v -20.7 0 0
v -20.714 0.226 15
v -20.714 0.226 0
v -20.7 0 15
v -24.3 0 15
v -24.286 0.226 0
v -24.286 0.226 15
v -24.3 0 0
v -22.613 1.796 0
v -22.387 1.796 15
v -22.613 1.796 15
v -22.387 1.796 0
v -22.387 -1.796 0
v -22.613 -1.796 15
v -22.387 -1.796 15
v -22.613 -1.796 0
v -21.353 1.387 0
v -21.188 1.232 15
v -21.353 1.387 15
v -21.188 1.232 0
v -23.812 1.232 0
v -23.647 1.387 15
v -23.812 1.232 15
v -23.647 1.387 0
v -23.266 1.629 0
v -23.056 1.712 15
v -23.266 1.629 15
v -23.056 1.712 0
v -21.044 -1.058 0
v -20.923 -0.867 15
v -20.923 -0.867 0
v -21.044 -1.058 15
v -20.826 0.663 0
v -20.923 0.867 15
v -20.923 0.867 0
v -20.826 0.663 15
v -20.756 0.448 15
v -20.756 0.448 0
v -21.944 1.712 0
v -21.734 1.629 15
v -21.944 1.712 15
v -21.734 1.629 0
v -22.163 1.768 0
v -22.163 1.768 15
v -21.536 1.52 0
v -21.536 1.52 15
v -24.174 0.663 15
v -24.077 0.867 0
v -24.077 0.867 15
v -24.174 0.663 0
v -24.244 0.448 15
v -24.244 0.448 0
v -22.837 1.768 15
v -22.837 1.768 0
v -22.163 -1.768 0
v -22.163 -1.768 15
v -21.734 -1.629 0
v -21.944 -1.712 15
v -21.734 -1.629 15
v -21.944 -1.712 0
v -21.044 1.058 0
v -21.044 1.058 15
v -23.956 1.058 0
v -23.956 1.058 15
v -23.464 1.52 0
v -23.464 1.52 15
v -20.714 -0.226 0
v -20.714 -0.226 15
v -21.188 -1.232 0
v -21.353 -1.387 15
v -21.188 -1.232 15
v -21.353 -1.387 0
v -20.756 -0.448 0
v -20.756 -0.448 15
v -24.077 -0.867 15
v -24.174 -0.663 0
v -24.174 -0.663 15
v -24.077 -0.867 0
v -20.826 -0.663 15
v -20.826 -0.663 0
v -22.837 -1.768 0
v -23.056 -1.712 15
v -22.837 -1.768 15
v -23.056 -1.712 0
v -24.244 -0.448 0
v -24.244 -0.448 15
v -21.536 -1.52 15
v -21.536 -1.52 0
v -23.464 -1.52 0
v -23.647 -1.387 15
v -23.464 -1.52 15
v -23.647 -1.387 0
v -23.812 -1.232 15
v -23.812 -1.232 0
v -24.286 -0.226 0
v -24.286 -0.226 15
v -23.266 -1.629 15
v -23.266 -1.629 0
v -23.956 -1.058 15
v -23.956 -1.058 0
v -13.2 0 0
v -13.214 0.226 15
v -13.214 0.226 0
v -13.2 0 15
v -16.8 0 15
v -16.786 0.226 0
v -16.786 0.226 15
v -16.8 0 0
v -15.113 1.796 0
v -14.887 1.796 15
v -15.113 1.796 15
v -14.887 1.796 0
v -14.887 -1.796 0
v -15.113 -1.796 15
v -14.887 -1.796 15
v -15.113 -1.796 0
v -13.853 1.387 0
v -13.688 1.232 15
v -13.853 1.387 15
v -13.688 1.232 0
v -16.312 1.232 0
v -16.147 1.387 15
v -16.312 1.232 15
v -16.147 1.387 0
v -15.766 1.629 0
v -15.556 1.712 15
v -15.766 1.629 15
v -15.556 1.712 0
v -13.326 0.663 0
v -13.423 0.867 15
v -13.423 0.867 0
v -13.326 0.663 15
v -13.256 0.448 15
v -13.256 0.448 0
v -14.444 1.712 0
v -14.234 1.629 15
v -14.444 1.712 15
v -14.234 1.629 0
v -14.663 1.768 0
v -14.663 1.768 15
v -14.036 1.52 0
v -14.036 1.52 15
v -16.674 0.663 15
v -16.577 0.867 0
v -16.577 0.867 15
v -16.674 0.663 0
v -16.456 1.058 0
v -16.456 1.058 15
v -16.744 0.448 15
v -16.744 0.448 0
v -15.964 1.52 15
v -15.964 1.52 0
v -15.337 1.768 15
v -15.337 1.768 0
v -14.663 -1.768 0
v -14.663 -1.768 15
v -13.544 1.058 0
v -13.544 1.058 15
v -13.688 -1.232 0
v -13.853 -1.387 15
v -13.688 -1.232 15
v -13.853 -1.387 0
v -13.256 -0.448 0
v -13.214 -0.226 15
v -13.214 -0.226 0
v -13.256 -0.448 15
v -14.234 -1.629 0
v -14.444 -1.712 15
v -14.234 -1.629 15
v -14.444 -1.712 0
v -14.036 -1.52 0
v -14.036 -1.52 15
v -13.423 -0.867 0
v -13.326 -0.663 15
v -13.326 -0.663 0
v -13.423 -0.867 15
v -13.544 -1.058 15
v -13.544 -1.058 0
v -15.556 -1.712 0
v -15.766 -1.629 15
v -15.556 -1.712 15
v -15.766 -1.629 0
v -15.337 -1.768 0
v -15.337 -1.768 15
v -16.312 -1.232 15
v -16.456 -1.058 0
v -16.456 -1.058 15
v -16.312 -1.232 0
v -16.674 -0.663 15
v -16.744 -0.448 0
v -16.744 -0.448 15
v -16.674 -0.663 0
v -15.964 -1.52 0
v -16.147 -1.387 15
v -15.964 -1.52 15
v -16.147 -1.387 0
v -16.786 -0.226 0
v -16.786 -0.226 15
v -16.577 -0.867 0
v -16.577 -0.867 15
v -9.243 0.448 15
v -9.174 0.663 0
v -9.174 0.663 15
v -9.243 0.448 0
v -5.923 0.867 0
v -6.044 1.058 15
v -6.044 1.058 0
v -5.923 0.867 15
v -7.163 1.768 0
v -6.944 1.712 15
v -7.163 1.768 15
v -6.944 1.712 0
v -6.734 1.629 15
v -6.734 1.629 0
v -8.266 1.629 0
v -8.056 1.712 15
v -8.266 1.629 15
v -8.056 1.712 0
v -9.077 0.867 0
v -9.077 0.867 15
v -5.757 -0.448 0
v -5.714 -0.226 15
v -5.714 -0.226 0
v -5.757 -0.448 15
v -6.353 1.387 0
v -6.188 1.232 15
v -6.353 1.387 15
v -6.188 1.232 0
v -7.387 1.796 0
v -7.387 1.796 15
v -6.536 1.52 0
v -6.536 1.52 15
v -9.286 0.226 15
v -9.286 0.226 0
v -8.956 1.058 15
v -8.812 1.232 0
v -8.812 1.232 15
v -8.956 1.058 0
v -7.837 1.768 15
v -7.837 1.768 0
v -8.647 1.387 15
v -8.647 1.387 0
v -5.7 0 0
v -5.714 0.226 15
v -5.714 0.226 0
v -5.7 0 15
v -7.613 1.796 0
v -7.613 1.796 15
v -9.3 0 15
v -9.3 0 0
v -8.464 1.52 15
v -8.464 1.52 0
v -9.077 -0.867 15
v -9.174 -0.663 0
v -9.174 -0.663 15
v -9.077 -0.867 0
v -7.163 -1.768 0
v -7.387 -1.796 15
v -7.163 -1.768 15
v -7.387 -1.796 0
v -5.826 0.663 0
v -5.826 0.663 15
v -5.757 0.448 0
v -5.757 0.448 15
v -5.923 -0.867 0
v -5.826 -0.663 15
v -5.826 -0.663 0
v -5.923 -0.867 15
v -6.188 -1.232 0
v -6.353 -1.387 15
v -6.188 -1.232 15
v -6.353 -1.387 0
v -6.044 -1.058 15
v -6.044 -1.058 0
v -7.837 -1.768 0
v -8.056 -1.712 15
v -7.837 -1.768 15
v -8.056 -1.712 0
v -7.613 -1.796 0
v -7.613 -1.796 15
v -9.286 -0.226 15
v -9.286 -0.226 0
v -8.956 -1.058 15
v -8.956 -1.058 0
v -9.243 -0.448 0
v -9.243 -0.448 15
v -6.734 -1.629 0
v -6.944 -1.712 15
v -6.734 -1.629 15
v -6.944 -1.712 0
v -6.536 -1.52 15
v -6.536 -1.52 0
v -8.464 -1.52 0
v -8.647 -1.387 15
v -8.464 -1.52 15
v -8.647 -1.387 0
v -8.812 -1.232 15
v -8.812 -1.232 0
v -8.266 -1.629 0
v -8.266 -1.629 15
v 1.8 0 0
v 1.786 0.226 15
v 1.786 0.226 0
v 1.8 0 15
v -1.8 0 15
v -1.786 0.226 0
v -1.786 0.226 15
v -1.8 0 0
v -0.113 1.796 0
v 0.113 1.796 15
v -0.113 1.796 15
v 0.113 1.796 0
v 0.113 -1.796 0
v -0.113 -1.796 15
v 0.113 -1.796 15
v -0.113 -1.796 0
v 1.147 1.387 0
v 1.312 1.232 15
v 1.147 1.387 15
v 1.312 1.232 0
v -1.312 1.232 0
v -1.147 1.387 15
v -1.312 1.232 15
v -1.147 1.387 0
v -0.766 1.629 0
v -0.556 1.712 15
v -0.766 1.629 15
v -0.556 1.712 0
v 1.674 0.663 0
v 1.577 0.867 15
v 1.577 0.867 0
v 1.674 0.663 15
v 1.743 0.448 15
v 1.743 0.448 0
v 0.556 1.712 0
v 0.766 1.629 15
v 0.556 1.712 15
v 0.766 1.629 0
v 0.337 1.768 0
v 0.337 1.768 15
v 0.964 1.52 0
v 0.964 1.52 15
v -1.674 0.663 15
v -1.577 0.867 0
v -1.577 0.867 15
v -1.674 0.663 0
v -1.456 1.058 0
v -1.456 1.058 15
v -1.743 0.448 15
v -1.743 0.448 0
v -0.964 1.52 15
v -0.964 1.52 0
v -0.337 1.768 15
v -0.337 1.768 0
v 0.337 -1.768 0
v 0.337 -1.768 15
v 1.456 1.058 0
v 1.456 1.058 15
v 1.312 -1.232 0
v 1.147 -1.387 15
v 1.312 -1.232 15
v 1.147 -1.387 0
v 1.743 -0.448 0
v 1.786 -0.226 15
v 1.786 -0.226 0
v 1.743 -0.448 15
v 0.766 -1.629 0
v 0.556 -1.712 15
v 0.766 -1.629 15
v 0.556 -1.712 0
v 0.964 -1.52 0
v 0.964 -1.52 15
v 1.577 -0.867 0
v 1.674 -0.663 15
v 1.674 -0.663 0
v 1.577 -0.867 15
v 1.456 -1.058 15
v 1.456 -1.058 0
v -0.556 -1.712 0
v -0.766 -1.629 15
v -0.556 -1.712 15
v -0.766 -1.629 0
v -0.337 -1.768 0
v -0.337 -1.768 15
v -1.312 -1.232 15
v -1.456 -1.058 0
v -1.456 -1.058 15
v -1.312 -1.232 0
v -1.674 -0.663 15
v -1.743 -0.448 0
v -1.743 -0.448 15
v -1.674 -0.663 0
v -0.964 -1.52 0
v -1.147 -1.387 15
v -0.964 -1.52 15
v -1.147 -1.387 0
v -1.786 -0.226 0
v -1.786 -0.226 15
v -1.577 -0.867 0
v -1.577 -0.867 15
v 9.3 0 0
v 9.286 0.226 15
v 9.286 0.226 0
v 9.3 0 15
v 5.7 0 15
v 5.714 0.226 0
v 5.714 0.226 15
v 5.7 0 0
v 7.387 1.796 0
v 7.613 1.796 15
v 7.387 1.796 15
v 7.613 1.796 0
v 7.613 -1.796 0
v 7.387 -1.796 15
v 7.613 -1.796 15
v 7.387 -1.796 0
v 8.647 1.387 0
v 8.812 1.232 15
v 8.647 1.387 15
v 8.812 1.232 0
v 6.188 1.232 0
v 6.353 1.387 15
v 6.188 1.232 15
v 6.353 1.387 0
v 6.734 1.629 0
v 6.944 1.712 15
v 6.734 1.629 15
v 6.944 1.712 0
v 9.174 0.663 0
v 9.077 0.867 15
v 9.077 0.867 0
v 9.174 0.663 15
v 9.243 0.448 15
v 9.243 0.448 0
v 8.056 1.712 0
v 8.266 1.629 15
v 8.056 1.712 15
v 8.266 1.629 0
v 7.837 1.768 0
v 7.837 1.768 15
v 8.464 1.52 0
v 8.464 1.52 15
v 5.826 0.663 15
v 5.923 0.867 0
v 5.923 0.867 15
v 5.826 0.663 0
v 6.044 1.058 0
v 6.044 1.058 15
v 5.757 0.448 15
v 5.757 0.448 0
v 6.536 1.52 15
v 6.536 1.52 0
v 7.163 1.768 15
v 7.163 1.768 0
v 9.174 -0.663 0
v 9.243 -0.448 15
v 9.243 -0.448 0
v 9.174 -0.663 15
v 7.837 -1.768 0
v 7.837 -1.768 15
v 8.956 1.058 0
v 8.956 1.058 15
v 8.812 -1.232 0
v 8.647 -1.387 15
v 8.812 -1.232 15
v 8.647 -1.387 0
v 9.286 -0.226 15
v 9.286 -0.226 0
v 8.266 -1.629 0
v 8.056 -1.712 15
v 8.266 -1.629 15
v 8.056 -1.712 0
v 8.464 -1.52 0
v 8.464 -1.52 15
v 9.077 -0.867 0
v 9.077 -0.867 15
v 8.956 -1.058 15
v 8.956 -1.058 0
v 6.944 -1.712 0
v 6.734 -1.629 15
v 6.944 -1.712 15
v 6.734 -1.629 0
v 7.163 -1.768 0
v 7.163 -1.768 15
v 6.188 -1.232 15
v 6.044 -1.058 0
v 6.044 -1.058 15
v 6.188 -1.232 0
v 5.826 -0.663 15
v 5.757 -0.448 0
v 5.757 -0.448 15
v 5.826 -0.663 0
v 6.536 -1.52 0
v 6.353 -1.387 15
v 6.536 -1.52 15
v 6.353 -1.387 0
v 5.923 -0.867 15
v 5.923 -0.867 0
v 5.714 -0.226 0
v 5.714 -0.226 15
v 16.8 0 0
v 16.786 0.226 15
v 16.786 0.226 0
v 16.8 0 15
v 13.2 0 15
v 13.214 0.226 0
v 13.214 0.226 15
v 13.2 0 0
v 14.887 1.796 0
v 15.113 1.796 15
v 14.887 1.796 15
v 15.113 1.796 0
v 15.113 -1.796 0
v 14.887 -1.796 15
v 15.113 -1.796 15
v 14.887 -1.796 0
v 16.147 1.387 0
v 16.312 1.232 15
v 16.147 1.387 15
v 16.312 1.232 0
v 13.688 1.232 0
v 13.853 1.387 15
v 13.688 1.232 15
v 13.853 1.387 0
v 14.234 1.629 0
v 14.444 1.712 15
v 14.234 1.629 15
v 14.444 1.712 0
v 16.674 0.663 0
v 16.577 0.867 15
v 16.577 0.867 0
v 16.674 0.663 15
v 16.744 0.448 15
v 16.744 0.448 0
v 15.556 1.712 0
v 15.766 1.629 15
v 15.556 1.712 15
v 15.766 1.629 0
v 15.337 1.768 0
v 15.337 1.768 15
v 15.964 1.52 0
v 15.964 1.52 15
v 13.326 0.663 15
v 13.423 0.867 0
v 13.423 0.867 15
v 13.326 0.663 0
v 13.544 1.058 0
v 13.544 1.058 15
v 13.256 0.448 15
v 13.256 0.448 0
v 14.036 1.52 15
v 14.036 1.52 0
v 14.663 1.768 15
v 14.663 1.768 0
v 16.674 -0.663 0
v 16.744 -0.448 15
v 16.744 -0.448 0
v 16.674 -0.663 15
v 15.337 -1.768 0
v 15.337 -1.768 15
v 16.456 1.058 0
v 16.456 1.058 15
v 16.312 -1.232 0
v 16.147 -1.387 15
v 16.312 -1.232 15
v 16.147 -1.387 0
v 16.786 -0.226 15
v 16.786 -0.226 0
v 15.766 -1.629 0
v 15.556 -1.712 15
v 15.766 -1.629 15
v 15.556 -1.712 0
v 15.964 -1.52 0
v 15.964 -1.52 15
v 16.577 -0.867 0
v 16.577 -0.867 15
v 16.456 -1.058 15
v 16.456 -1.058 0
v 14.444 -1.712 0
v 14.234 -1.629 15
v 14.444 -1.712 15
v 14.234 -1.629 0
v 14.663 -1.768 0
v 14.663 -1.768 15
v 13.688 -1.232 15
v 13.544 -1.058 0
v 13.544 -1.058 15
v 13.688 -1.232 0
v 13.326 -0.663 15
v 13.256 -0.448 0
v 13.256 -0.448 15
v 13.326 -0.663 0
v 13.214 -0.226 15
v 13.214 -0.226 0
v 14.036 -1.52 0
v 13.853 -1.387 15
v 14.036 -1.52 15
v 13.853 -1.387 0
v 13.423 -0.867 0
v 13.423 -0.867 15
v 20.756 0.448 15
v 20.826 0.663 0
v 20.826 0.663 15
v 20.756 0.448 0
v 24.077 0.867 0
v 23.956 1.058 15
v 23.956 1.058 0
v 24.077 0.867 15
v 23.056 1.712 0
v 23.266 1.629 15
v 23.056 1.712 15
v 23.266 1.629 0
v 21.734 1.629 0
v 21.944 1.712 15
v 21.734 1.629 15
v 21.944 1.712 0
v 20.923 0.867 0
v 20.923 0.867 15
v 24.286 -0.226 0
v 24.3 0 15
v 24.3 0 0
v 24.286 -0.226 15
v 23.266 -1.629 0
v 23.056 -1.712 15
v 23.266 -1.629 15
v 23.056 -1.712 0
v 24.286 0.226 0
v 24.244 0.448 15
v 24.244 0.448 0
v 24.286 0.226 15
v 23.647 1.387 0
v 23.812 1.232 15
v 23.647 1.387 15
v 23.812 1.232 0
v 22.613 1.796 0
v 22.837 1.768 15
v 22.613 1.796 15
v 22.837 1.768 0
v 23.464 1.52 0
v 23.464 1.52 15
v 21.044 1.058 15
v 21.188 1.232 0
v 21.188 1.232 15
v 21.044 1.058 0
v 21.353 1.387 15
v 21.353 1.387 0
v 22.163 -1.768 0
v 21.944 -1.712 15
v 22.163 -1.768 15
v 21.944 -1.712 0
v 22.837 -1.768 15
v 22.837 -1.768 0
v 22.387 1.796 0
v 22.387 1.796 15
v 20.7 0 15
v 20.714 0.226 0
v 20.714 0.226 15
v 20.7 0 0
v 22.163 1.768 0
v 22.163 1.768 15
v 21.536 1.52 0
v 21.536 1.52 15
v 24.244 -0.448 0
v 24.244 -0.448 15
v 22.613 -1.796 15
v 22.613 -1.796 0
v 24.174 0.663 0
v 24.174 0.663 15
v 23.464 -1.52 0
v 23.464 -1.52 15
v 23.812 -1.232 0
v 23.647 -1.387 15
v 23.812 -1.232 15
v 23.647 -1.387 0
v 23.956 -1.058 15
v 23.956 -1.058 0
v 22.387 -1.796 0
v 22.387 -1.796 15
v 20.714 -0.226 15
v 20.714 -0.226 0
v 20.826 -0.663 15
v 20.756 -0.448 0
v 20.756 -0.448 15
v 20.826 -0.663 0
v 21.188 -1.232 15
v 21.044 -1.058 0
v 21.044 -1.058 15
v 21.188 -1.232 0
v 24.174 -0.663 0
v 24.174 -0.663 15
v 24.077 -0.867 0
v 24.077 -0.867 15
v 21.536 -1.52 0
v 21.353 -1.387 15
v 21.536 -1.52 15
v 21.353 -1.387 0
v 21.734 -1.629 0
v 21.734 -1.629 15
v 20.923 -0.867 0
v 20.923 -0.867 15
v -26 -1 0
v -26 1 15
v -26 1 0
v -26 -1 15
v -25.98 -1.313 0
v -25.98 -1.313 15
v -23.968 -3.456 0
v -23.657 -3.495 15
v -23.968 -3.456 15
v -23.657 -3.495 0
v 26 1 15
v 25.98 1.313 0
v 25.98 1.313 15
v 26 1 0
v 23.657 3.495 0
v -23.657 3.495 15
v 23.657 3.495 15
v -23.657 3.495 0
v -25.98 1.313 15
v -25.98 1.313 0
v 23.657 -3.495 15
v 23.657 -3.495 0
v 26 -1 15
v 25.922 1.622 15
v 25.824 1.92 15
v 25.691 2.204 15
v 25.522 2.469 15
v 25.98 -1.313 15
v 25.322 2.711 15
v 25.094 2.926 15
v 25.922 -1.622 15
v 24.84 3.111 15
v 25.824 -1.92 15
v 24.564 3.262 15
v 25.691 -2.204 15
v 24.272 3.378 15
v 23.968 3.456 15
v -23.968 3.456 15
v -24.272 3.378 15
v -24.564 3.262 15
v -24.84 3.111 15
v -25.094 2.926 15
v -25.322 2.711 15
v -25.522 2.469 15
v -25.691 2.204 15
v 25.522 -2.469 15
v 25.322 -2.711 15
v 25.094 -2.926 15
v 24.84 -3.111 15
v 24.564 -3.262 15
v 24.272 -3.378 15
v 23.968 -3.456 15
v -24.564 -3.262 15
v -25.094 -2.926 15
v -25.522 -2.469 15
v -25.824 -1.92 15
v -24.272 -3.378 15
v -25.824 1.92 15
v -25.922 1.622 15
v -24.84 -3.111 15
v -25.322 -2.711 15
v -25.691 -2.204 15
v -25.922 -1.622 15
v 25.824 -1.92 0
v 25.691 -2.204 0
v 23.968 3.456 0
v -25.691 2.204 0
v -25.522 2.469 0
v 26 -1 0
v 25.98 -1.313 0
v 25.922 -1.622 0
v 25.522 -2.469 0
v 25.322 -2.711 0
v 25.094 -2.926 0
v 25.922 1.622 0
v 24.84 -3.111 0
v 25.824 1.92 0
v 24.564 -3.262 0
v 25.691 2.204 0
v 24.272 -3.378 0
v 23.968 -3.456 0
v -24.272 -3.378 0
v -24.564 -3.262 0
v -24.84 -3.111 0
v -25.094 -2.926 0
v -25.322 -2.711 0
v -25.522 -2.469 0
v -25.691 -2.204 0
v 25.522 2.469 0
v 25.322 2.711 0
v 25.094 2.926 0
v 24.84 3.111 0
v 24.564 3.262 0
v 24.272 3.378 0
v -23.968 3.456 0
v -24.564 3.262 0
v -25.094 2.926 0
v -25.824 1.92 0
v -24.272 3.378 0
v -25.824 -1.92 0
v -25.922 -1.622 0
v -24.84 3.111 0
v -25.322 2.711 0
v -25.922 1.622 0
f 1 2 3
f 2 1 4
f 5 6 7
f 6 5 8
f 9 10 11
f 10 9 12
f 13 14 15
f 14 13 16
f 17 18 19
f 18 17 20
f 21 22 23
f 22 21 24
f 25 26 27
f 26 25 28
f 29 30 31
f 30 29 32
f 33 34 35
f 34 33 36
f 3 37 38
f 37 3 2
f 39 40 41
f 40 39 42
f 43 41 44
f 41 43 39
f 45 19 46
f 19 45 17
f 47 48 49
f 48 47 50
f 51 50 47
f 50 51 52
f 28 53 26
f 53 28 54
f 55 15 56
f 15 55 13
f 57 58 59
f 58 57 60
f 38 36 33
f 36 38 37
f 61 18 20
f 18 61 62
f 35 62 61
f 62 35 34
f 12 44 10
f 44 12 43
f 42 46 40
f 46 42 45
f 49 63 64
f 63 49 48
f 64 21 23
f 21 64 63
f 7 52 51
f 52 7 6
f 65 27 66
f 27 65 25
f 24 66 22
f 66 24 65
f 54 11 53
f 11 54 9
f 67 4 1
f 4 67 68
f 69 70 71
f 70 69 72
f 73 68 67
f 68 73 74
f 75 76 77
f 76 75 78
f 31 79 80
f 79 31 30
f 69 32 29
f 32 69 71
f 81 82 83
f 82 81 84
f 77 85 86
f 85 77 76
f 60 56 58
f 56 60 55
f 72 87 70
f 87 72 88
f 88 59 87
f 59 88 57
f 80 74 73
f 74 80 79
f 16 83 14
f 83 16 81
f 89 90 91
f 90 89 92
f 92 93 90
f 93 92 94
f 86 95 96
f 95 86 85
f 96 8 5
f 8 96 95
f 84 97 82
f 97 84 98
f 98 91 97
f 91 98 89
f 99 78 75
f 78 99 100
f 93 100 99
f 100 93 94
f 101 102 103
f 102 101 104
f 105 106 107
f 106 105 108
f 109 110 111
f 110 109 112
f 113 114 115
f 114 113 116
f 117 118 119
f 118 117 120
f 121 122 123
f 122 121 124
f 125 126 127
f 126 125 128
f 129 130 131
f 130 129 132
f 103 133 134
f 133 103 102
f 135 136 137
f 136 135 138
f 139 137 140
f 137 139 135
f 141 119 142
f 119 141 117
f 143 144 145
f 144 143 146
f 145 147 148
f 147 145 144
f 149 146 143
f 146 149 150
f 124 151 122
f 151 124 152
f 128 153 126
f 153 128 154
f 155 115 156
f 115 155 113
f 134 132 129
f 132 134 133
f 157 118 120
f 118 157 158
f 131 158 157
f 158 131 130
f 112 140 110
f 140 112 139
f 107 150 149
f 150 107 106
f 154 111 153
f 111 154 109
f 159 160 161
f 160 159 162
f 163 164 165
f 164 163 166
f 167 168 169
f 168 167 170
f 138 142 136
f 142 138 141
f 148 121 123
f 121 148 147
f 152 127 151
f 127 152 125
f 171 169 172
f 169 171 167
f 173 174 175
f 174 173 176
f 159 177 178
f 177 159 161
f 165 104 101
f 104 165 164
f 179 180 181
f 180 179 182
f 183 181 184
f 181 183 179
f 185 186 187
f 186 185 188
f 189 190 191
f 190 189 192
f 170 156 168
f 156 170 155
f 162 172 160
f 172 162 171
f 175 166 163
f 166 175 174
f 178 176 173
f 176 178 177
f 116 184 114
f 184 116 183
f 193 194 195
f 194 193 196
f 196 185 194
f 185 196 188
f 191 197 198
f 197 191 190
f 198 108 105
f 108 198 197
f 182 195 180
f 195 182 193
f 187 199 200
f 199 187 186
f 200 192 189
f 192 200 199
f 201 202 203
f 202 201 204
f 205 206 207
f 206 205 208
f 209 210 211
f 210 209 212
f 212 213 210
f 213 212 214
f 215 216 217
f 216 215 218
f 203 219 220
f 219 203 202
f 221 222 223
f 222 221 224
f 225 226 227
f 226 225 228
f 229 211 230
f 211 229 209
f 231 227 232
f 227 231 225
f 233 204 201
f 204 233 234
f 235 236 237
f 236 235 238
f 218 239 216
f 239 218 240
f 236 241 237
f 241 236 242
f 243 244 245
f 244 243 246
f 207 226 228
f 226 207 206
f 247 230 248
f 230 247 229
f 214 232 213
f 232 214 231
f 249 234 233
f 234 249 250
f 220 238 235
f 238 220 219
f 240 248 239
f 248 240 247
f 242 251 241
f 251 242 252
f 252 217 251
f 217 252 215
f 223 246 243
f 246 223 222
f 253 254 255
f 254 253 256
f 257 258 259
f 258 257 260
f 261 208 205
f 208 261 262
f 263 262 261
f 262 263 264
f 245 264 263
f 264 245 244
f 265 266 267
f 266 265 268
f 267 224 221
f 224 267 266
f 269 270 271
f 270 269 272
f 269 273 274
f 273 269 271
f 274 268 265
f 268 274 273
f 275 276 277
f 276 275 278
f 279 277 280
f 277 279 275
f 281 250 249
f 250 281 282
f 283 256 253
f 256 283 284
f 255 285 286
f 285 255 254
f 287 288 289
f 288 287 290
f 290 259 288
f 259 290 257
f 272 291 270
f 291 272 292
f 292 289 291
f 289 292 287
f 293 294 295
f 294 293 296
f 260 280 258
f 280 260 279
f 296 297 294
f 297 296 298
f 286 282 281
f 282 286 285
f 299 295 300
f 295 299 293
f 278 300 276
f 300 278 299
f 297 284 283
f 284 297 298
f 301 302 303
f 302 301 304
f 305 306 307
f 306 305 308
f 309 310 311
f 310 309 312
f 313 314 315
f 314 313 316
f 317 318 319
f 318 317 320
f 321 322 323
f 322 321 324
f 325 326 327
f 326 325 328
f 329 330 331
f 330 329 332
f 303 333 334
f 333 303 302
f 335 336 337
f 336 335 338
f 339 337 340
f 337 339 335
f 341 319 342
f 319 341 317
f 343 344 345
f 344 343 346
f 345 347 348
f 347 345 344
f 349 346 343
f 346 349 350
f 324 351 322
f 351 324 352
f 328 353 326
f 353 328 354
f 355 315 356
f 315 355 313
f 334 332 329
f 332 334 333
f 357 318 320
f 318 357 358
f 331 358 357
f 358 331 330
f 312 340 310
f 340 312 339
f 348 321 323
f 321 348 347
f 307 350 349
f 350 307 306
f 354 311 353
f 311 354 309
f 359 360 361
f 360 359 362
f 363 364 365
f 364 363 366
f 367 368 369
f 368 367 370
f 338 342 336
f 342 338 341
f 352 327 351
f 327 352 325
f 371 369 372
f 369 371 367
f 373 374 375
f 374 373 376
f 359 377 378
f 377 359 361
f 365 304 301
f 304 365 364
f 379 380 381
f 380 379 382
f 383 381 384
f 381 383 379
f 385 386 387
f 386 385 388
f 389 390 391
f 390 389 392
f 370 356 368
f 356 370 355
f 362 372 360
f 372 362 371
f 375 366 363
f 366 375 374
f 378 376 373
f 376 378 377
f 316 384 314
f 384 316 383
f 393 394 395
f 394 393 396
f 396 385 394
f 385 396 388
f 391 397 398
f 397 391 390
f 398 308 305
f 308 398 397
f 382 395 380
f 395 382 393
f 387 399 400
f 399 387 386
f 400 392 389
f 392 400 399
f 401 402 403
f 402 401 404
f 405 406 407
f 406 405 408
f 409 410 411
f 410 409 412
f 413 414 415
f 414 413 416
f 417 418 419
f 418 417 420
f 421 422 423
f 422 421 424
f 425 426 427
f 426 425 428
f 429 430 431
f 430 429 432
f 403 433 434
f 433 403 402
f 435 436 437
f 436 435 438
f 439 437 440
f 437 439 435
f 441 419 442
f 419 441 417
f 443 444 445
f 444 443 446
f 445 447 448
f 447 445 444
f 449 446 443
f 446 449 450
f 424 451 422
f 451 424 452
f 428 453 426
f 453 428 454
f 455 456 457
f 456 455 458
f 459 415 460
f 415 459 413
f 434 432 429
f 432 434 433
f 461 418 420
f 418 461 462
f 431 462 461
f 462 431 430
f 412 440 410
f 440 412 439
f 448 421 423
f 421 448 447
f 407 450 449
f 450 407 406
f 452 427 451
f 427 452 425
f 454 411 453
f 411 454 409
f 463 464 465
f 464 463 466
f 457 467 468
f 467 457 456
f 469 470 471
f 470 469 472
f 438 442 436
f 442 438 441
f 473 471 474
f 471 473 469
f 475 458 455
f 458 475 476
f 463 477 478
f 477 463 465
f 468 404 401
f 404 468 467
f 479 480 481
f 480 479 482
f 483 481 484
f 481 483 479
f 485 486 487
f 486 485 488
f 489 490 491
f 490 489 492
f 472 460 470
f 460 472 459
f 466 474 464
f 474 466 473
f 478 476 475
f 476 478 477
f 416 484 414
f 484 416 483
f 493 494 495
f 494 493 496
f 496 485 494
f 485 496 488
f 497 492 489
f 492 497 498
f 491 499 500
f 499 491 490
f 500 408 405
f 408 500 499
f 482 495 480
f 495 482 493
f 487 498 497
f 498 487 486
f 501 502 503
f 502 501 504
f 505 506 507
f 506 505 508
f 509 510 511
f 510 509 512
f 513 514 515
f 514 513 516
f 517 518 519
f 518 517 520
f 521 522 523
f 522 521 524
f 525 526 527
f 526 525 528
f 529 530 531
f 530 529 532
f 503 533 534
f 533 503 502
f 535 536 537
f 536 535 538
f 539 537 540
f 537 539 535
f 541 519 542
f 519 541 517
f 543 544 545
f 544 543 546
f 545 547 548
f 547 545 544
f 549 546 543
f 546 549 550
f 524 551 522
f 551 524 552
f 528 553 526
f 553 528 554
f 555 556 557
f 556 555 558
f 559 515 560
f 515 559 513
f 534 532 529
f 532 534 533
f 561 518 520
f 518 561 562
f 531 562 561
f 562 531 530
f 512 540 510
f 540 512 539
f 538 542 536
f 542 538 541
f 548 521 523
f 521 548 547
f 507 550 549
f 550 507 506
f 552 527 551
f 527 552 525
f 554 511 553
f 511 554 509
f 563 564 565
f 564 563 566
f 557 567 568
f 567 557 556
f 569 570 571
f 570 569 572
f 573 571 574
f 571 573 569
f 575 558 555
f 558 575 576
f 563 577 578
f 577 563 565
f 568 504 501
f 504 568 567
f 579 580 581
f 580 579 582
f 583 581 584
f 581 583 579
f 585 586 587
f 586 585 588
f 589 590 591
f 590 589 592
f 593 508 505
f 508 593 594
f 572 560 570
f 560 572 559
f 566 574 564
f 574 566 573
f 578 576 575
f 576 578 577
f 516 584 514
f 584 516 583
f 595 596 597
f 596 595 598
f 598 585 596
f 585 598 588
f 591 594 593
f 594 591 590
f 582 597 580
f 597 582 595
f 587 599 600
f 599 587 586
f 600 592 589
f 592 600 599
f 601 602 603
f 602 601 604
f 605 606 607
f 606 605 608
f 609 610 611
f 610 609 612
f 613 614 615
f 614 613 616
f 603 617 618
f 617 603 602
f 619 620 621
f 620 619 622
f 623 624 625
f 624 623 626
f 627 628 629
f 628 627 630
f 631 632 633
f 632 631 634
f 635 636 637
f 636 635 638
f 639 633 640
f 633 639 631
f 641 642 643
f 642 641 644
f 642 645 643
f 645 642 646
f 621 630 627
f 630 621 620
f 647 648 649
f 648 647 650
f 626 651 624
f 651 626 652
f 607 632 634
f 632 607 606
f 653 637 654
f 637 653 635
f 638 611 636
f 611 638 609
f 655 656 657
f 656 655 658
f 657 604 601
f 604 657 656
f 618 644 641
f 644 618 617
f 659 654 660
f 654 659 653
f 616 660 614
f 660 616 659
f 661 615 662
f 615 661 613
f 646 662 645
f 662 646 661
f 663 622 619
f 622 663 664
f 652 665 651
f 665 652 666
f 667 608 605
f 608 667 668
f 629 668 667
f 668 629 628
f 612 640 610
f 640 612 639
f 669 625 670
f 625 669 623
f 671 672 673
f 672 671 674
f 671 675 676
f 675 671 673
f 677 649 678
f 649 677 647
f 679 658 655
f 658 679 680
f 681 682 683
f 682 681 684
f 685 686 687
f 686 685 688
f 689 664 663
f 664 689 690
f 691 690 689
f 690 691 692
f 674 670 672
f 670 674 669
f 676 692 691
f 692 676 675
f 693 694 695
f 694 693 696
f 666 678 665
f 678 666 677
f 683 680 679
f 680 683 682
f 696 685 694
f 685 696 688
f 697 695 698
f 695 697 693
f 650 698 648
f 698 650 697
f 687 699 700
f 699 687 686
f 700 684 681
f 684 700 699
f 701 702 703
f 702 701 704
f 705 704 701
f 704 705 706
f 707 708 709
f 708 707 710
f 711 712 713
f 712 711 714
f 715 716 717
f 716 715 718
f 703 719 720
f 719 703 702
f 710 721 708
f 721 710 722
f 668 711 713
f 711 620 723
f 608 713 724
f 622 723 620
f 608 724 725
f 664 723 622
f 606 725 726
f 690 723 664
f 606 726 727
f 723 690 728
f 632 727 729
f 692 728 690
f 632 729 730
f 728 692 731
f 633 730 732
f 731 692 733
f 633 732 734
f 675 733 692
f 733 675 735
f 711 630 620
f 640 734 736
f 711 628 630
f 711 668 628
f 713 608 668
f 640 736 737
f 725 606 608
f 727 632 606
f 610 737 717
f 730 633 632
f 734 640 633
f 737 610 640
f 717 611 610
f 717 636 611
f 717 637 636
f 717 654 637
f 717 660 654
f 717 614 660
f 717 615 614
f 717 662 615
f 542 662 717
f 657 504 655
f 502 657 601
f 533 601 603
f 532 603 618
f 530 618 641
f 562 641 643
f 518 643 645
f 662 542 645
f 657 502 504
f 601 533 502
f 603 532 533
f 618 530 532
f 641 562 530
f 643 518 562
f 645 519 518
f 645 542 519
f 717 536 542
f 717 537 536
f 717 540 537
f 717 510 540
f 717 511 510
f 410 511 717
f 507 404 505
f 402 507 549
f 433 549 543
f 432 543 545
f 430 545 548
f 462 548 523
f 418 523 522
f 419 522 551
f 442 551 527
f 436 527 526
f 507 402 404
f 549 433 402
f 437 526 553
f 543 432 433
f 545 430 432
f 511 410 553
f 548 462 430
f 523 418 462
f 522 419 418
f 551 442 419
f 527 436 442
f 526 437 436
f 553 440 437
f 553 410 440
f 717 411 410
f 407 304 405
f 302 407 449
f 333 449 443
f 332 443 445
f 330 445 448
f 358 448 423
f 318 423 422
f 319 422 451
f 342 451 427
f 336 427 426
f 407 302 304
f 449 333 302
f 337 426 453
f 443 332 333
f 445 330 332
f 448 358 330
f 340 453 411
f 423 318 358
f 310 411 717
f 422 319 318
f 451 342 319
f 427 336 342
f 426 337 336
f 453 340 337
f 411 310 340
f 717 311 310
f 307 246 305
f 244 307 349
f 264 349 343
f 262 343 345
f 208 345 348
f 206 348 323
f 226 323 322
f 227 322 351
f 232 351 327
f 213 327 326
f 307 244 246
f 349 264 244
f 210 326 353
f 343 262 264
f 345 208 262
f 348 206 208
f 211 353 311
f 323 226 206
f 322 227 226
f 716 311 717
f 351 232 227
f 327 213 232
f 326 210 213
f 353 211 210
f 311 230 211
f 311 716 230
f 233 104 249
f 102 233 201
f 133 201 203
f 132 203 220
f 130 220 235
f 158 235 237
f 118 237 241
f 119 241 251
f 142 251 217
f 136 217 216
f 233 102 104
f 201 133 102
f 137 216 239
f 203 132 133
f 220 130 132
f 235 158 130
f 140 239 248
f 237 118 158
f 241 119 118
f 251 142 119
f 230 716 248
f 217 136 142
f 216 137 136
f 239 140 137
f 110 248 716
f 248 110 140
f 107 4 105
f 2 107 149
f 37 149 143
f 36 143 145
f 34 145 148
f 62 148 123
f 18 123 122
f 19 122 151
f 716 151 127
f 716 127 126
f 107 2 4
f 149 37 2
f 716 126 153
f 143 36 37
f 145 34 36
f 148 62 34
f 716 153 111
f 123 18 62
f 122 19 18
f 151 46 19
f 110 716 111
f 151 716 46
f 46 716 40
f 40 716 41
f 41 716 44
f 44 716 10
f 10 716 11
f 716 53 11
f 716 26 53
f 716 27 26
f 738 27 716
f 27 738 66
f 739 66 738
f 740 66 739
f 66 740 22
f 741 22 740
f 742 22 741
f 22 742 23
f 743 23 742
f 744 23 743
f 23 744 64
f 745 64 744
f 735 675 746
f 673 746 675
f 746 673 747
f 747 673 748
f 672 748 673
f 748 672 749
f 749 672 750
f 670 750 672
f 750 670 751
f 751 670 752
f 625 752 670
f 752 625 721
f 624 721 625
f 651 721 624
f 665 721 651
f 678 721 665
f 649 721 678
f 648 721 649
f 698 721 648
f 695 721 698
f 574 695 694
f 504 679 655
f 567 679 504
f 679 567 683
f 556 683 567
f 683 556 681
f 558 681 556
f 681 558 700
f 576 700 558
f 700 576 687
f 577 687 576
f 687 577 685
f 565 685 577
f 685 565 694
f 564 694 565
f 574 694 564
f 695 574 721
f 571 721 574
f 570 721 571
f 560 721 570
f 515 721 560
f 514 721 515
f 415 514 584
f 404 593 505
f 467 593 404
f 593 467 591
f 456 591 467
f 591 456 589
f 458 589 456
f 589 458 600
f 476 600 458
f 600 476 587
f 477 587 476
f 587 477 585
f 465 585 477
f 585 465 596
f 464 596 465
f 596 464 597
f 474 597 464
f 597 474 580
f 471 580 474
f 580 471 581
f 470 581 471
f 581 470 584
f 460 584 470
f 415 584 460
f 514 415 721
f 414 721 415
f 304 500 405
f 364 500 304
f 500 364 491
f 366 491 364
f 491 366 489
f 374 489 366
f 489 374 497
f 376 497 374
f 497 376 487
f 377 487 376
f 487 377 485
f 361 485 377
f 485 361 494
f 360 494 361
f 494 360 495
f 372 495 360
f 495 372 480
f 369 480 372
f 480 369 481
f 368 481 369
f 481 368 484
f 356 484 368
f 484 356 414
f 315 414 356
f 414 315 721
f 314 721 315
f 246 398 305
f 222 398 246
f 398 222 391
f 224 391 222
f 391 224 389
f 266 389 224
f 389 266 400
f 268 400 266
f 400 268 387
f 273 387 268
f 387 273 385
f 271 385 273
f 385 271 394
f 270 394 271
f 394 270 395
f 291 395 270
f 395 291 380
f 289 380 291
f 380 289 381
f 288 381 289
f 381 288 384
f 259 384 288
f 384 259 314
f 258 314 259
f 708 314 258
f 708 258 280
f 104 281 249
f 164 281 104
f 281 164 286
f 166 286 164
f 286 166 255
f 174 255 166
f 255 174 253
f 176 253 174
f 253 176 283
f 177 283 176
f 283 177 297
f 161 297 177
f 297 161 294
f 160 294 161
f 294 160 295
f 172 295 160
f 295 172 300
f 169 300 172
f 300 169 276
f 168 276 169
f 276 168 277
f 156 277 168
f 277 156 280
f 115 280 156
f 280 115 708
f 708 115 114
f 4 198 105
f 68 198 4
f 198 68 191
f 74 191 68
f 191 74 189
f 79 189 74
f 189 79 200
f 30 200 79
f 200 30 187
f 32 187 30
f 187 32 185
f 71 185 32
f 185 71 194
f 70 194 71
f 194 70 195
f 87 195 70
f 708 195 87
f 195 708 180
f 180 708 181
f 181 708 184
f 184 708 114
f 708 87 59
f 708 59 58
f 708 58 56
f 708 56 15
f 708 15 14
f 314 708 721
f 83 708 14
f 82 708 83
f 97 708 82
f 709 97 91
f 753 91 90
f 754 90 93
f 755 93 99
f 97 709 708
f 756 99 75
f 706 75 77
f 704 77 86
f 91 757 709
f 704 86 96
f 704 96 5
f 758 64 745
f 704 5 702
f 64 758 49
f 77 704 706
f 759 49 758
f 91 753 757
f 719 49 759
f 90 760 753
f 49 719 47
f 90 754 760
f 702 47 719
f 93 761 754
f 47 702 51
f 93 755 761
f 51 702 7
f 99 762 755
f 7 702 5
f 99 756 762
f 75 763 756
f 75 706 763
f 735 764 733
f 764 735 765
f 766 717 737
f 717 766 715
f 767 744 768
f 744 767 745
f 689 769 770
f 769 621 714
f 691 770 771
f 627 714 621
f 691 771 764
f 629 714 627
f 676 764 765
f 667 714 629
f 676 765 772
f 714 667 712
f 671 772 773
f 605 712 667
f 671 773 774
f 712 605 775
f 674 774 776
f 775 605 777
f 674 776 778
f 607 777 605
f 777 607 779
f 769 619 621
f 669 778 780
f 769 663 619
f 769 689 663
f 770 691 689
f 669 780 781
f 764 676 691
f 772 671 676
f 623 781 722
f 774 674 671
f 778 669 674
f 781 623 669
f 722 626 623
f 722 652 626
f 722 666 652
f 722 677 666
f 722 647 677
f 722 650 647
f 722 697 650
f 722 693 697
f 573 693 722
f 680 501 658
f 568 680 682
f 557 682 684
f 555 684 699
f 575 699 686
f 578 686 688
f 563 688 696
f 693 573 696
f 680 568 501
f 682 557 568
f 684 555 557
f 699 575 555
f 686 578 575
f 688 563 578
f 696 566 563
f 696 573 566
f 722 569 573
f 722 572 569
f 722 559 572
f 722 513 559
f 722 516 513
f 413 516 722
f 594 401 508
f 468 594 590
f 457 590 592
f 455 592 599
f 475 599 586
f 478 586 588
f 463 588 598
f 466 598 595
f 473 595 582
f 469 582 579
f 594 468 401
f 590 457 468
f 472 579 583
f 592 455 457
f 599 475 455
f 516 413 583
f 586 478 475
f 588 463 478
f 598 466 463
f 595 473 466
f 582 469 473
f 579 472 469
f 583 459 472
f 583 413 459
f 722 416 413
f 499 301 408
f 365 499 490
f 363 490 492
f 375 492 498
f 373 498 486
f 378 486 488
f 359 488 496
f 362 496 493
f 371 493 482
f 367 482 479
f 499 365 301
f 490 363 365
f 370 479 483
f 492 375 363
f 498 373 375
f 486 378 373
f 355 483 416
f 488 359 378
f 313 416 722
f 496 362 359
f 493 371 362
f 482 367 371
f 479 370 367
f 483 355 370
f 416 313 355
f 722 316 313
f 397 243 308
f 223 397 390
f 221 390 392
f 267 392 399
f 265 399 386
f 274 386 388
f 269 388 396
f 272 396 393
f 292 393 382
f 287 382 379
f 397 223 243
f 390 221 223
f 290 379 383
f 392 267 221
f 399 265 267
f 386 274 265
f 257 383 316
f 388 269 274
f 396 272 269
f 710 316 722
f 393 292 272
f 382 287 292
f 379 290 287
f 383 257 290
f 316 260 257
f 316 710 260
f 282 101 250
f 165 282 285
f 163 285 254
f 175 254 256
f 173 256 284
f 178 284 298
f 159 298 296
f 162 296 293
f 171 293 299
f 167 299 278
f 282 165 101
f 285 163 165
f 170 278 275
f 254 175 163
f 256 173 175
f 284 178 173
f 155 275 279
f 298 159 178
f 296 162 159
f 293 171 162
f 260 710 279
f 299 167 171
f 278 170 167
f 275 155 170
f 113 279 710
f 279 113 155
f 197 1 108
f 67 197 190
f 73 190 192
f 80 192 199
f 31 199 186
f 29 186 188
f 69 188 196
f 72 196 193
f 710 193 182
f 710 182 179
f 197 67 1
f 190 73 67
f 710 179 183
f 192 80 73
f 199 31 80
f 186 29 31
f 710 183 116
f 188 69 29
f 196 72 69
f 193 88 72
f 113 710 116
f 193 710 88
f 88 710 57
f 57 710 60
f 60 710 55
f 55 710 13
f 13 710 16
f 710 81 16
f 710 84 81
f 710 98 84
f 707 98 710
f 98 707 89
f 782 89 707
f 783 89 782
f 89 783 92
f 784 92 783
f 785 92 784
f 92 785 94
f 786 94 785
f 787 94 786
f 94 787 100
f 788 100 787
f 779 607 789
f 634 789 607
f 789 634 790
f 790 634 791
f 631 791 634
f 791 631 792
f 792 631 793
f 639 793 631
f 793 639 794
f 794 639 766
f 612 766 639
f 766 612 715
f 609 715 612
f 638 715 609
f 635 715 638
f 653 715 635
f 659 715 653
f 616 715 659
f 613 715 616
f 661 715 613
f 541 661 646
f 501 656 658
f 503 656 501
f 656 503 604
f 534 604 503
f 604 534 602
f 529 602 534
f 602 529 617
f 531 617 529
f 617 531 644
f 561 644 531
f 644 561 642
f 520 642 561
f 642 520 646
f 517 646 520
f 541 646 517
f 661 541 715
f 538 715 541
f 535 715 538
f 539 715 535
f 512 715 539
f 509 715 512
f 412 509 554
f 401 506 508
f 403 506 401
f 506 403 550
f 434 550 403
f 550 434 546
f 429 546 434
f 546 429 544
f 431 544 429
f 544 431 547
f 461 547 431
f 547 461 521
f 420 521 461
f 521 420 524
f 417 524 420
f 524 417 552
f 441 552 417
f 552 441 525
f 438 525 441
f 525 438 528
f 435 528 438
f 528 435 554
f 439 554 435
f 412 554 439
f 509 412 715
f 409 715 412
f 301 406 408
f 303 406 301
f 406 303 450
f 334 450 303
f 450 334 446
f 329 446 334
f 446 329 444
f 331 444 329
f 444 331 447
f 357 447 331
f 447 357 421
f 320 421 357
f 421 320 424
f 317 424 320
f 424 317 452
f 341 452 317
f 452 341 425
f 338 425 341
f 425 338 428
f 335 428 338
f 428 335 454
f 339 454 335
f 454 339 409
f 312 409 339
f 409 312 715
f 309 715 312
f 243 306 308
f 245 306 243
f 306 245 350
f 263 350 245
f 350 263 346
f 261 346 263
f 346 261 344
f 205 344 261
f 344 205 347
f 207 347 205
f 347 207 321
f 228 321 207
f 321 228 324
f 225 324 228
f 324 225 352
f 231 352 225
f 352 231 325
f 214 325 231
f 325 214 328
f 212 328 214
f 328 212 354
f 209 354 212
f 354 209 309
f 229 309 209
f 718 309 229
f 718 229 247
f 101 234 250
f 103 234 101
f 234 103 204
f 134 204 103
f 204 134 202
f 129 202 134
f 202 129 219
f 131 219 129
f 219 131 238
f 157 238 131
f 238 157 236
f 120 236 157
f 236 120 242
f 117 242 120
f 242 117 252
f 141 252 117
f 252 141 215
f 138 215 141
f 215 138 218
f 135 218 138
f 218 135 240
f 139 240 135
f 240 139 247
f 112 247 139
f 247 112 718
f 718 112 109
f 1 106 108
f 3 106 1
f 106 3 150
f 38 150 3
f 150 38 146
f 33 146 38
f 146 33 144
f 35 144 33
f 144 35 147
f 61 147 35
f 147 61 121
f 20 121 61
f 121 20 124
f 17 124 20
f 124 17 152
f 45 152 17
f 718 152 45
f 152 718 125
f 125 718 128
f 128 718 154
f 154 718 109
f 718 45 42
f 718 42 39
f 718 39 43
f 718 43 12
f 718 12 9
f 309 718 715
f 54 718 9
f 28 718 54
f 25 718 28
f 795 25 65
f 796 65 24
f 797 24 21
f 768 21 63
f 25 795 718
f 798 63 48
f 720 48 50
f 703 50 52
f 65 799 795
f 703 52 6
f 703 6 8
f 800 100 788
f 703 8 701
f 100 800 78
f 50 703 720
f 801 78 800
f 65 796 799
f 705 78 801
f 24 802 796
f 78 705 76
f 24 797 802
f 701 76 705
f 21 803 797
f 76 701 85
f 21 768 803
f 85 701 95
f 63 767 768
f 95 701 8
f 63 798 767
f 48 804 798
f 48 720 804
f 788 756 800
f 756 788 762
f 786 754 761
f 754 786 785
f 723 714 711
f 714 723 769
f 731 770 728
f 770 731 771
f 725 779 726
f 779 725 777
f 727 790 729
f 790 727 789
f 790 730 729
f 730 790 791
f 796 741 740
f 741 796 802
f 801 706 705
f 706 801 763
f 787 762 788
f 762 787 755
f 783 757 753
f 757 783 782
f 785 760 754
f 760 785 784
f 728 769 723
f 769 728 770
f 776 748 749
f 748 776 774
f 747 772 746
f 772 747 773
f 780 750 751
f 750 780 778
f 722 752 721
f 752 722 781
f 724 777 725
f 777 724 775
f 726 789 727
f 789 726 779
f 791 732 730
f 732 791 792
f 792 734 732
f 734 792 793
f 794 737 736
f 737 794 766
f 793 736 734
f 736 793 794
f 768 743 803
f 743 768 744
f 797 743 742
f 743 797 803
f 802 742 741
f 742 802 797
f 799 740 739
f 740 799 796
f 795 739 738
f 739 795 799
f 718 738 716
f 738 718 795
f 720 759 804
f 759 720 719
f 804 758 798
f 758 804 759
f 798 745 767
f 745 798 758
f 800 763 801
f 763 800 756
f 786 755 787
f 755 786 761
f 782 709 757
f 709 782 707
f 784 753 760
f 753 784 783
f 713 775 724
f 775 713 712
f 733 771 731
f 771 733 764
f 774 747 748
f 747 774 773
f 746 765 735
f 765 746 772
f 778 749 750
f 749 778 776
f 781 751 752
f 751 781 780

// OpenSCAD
$fn = 50;


difference() {
	union() {
		translate(v = [0, 0, 0]) {
			rotate(a = [0, 0, 0]) {
				hull() {
					translate(v = [-23.5000000000, 1.0000000000, 0]) {
						rotate(a = [0, 0, 0]) {
							translate(v = [0, 0, 0]) {
								rotate(a = [0, 0, 0]) {
									cylinder(h = 15, r = 2.5000000000);
								}
							}
						}
					}
					translate(v = [23.5000000000, 1.0000000000, 0]) {
						rotate(a = [0, 0, 0]) {
							translate(v = [0, 0, 0]) {
								rotate(a = [0, 0, 0]) {
									cylinder(h = 15, r = 2.5000000000);
								}
							}
						}
					}
					translate(v = [-23.5000000000, -1.0000000000, 0]) {
						rotate(a = [0, 0, 0]) {
							translate(v = [0, 0, 0]) {
								rotate(a = [0, 0, 0]) {
									cylinder(h = 15, r = 2.5000000000);
								}
							}
						}
					}
					translate(v = [23.5000000000, -1.0000000000, 0]) {
						rotate(a = [0, 0, 0]) {
							translate(v = [0, 0, 0]) {
								rotate(a = [0, 0, 0]) {
									cylinder(h = 15, r = 2.5000000000);
								}
							}
						}
					}
				}
			}
		}
	}
	union() {
		translate(v = [-22.5000000000, 0.0000000000, 0]) {
			rotate(a = [0, 0, 0]) {
				translate(v = [0, 0, -50]) {
					rotate(a = [0, 0, 0]) {
						cylinder(h = 100, r = 1.8000000000);
					}
				}
			}
		}
		translate(v = [-15.0000000000, 0.0000000000, 0]) {
			rotate(a = [0, 0, 0]) {
				translate(v = [0, 0, -50]) {
					rotate(a = [0, 0, 0]) {
						cylinder(h = 100, r = 1.8000000000);
					}
				}
			}
		}
		translate(v = [-7.5000000000, 0.0000000000, 0]) {
			rotate(a = [0, 0, 0]) {
				translate(v = [0, 0, -50]) {
					rotate(a = [0, 0, 0]) {
						cylinder(h = 100, r = 1.8000000000);
					}
				}
			}
		}
		translate(v = [0.0000000000, 0.0000000000, 0]) {
			rotate(a = [0, 0, 0]) {
				translate(v = [0, 0, -50]) {
					rotate(a = [0, 0, 0]) {
						cylinder(h = 100, r = 1.8000000000);
					}
				}
			}
		}
		translate(v = [7.5000000000, 0.0000000000, 0]) {
			rotate(a = [0, 0, 0]) {
				translate(v = [0, 0, -50]) {
					rotate(a = [0, 0, 0]) {
						cylinder(h = 100, r = 1.8000000000);
					}
				}
			}
		}
		translate(v = [15.0000000000, 0.0000000000, 0]) {
			rotate(a = [0, 0, 0]) {
				translate(v = [0, 0, -50]) {
					rotate(a = [0, 0, 0]) {
						cylinder(h = 100, r = 1.8000000000);
					}
				}
			}
		}
		translate(v = [22.5000000000, 0.0000000000, 0]) {
			rotate(a = [0, 0, 0]) {
				translate(v = [0, 0, -50]) {
					rotate(a = [0, 0, 0]) {
						cylinder(h = 100, r = 1.8000000000);
					}
				}
			}
		}
	}
}
